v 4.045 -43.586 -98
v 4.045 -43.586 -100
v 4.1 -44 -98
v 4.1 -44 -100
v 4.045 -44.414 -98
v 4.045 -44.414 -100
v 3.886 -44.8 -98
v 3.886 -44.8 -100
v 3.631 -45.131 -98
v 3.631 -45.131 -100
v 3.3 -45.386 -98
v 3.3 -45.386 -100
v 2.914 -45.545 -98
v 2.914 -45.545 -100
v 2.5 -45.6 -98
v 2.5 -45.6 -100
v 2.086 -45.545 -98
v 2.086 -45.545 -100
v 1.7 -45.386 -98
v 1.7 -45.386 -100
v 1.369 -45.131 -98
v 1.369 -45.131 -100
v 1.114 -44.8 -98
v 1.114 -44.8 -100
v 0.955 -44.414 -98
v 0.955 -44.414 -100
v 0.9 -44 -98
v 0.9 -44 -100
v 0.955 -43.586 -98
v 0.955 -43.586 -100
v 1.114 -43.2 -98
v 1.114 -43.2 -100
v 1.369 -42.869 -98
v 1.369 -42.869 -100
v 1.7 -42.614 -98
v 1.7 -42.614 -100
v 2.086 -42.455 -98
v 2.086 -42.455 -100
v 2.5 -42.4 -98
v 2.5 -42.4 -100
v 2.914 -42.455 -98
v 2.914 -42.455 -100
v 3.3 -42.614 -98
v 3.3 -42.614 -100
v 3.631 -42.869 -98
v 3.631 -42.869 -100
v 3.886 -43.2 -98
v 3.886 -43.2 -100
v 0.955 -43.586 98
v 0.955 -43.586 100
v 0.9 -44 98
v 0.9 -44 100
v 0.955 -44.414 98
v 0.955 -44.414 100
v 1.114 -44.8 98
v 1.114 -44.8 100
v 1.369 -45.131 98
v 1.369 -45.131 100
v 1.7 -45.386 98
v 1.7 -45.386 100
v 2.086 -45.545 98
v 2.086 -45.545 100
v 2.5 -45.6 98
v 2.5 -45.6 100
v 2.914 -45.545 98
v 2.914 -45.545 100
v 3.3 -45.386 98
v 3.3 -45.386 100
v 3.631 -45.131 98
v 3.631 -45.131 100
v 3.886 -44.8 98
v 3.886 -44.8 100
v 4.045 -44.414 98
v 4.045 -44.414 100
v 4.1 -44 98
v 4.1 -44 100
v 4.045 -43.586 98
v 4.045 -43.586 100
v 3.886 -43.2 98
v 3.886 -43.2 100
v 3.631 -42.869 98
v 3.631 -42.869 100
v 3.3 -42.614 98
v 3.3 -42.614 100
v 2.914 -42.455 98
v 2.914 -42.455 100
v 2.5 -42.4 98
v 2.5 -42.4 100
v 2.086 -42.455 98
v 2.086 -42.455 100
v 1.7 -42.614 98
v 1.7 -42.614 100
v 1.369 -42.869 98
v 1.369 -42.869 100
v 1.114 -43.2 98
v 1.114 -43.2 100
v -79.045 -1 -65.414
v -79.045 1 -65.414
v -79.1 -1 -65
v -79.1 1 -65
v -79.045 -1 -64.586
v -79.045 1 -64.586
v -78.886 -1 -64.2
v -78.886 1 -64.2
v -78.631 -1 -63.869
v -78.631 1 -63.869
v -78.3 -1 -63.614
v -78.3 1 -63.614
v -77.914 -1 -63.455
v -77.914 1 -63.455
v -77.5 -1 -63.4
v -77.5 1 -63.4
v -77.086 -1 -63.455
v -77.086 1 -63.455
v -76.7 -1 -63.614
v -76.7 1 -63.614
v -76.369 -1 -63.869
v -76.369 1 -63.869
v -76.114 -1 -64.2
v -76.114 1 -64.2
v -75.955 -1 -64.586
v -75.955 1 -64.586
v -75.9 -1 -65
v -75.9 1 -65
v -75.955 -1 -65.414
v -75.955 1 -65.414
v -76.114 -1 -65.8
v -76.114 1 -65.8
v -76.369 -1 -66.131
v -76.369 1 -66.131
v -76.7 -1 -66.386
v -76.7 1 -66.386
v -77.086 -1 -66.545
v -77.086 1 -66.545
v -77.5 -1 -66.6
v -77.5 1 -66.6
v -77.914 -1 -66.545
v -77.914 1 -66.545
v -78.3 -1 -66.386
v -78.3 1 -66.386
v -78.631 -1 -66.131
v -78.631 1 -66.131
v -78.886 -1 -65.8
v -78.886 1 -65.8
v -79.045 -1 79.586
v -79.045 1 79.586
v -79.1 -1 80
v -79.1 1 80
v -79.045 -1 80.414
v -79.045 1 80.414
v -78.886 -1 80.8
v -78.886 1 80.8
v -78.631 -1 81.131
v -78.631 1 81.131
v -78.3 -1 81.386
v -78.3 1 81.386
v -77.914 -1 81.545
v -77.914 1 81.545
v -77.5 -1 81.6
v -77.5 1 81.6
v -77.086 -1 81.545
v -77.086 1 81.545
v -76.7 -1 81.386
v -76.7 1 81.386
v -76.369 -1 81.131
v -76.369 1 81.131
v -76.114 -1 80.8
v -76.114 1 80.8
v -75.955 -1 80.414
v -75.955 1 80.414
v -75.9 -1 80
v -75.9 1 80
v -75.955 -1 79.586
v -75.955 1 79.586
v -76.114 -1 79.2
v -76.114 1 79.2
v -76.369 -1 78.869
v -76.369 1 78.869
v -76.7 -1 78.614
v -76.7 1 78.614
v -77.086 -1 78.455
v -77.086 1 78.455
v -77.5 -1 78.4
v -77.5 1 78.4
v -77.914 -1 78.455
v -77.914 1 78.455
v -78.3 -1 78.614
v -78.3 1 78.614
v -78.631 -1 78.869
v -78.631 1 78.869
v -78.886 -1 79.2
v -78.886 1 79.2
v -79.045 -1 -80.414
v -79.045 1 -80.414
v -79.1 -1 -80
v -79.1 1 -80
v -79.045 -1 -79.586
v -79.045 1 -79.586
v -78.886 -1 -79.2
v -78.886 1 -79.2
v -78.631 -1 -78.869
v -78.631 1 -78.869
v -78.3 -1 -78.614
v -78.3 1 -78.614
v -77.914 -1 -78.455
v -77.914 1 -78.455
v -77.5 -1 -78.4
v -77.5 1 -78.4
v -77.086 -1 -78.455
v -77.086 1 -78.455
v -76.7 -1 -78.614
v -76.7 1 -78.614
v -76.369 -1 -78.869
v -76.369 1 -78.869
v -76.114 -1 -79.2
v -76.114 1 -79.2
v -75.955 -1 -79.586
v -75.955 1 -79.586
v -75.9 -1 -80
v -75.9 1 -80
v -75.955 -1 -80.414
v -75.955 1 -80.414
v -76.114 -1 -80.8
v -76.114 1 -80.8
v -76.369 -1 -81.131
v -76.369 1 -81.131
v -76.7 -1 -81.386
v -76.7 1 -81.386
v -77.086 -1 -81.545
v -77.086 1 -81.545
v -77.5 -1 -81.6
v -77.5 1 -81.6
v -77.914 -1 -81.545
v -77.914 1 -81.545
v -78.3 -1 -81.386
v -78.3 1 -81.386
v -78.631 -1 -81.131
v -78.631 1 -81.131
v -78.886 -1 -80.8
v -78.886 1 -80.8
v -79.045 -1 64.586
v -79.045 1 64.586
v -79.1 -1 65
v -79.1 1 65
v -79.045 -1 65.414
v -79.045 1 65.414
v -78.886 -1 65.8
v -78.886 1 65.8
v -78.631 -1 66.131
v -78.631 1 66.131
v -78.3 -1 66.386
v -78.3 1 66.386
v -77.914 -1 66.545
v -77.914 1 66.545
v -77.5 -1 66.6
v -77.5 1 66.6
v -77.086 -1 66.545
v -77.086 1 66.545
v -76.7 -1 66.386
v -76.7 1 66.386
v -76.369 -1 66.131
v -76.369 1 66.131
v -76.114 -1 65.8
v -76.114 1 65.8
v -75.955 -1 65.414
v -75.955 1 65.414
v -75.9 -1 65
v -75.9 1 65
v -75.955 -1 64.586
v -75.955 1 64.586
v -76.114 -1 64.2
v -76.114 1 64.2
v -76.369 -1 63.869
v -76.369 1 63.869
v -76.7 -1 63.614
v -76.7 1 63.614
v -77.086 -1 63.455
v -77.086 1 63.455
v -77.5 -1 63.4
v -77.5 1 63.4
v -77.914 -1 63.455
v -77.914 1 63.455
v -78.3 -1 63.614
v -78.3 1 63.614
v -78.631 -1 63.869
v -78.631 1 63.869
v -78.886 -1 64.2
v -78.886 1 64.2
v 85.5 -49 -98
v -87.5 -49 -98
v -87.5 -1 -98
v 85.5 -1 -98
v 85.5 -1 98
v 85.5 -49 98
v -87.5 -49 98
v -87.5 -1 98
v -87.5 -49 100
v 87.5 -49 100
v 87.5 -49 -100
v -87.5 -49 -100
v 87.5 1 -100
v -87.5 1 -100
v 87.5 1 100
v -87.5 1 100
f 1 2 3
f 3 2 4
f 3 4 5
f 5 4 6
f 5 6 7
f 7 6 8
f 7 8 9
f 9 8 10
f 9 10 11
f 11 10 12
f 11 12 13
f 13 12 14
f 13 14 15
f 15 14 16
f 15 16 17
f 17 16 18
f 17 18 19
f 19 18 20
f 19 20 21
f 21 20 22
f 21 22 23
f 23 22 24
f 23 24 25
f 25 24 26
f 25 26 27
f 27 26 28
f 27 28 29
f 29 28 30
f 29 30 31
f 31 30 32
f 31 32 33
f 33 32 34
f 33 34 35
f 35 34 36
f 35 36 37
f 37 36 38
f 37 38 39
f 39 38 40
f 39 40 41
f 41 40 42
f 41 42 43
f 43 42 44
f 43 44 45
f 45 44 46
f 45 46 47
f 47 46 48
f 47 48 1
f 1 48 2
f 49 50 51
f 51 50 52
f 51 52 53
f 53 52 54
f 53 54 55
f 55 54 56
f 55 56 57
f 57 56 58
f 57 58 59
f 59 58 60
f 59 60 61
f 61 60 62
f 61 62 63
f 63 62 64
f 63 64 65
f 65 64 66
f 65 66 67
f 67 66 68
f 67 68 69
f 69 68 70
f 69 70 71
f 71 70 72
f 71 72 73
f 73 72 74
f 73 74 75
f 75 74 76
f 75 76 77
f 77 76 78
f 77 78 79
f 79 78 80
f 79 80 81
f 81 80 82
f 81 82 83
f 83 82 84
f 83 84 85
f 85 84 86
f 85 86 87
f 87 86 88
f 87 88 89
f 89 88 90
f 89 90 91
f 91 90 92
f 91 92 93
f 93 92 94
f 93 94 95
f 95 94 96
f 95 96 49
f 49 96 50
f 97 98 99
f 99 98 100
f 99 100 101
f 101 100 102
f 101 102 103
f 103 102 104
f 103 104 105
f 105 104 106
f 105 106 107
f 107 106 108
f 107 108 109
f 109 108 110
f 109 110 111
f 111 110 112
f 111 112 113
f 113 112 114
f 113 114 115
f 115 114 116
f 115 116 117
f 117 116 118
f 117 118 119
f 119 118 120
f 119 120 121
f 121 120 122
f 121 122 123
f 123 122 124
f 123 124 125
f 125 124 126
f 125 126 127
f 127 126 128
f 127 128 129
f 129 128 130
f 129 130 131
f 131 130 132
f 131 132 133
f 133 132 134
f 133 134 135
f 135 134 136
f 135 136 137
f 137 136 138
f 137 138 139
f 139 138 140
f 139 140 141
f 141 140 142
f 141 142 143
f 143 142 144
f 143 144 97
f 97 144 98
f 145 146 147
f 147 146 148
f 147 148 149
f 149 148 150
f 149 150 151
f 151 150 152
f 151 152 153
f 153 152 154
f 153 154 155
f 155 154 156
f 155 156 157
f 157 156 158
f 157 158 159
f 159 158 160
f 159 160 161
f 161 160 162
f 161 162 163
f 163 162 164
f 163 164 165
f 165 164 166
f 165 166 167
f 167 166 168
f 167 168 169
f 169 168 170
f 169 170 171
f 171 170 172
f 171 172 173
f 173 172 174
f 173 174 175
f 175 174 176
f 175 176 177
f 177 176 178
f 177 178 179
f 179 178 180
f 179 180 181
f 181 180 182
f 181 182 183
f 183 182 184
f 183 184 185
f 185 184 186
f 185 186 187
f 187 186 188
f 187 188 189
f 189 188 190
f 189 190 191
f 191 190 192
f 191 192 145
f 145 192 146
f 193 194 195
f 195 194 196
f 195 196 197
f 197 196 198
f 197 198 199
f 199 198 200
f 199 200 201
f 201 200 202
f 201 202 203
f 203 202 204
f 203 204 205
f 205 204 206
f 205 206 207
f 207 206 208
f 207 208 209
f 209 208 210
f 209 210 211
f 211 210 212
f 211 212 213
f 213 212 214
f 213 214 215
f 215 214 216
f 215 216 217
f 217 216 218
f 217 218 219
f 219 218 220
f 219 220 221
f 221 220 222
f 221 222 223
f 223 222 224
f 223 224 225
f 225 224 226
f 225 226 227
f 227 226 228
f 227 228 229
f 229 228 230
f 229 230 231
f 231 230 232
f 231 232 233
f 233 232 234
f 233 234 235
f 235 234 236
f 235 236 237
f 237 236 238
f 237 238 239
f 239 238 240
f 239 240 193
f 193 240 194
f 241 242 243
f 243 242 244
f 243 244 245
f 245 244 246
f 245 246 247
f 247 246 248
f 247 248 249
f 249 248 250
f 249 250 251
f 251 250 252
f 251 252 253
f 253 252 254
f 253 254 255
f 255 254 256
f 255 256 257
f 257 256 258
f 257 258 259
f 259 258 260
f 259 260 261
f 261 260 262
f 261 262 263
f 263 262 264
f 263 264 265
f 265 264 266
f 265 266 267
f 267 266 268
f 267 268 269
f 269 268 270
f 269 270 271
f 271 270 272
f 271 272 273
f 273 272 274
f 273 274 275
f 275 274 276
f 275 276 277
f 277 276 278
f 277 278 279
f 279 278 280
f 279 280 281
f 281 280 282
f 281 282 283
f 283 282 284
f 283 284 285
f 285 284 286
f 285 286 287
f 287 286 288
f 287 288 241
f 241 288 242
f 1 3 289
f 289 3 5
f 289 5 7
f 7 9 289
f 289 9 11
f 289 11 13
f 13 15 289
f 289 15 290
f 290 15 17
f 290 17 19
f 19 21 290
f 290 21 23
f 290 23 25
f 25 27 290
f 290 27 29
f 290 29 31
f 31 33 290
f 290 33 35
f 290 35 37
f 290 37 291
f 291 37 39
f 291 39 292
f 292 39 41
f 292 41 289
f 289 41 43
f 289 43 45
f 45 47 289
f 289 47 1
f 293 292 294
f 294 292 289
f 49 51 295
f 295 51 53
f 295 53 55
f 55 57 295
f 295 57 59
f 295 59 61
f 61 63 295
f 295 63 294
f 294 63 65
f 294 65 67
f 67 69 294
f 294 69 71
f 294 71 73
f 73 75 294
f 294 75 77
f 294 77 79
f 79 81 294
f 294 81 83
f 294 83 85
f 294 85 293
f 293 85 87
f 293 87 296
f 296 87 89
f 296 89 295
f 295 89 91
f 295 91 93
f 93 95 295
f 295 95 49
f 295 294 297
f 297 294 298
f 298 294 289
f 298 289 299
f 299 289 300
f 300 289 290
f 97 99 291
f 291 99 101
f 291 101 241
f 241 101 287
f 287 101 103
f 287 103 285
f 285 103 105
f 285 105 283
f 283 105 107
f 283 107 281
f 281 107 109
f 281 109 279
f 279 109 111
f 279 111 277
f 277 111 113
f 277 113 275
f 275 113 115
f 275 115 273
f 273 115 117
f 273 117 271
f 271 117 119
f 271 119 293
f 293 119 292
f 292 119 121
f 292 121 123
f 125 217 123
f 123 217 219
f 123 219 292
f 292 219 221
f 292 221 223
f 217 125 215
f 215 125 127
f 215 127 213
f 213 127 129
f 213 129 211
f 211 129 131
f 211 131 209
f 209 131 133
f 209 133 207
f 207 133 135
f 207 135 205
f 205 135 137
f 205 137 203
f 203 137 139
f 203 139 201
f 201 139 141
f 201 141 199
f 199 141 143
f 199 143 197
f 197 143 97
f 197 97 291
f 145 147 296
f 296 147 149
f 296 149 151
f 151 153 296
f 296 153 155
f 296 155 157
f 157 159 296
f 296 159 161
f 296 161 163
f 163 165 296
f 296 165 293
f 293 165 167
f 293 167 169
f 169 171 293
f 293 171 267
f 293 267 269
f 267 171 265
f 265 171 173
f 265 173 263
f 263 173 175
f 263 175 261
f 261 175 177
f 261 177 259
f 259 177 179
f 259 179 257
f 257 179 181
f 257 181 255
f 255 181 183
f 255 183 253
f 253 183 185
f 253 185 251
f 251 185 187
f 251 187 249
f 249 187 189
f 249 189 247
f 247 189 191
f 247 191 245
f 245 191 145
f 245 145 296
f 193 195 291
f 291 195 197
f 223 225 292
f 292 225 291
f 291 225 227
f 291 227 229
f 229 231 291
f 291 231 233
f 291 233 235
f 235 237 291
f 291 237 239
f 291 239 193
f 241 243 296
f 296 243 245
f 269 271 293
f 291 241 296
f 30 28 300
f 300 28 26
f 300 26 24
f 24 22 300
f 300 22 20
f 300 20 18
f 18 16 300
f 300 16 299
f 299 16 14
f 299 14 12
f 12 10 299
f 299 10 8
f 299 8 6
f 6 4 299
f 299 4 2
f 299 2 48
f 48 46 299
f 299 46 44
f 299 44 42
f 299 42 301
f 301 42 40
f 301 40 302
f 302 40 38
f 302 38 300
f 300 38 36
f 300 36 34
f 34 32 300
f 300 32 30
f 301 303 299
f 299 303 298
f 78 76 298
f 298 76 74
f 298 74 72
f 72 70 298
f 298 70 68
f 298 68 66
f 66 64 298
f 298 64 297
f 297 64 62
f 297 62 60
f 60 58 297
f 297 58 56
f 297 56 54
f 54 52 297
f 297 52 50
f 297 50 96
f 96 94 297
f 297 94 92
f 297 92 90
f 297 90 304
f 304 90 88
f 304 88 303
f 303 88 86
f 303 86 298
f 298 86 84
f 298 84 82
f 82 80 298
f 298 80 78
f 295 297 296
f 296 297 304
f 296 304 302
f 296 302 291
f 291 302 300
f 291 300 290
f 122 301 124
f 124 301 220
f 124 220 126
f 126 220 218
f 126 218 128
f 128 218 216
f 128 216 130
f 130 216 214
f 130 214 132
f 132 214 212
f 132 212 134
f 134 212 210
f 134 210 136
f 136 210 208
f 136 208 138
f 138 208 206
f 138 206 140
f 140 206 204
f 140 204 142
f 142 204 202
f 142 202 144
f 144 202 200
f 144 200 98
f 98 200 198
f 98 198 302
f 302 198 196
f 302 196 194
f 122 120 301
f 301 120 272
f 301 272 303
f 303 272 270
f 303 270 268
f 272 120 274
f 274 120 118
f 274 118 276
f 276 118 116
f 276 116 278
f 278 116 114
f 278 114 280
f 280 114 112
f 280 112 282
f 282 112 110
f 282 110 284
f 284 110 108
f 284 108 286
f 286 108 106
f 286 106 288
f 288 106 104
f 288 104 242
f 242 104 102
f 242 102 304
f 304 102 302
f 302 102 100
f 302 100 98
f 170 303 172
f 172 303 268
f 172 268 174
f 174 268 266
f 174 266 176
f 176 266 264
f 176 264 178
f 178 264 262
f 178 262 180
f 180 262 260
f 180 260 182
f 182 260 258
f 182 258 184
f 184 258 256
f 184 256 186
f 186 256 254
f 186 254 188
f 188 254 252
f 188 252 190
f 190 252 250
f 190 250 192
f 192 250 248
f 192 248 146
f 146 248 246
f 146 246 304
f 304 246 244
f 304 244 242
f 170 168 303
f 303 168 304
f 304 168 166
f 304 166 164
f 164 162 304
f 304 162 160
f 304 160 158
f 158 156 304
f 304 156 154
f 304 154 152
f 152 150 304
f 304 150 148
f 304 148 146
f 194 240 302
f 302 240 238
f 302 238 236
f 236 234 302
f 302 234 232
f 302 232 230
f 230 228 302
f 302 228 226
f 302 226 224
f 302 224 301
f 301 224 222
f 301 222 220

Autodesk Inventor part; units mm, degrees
ref_plane "YZ Plane" through (0, 0, 0) normal (1, 0, 0) x (0, 1, 0)
ref_plane "XZ Plane" through (0, 0, 0) normal (0, 1, 0) x (-1, 0, 0)
ref_plane "XY Plane" through (0, 0, 0) normal (0, 0, 1) x (1, 0, 0)
sketch "Skizze1" plane through (0, 0, 0) normal (0, 1, 0) x (-1, 0, 0)
  line L0 (87.5, -100) -> (-87.5, -100)
  line L1 (-87.5, -100) -> (-87.5, 100)
  line L2 (-87.5, 100) -> (87.5, 100)
  line L3 (87.5, 100) -> (87.5, -100)
  line L4 (0, -140) -> (0, 140) projected
  line L5 (-122.5, 0) -> (122.5, 0) projected
  point P0 (0, 0)
  dimension "d0" = 175
  dimension "d1" = 200
extrude "Extrusion1" add sketch "Skizze1" along normal mid plane 2
sketch "Skizze2" plane through (0, -1, 0) normal (0, -1, 0) x (1, 0, 0)
  line L0 (-87.5, -100) -> (-87.5, 100) projected
  line L1 (87.5, 100) -> (87.5, -100) projected
  line L2 (-87.5, 100) -> (87.5, 100)
  line L3 (87.5, 100) -> (87.5, 98)
  line L4 (87.5, 98) -> (-87.5, 98)
  line L5 (-87.5, 98) -> (-87.5, 100)
  line L6 (87.5, -100) -> (-87.5, -100) projected
  line L7 (-87.5, -100) -> (87.5, -100)
  line L8 (87.5, -100) -> (87.5, -98)
  line L9 (87.5, -98) -> (-87.5, -98)
  line L10 (-87.5, -98) -> (-87.5, -100)
  line L11 (87.5, -98) -> (85.5, -98)
  line L12 (85.5, -98) -> (85.5, 98)
  line L13 (85.5, 98) -> (87.5, 98)
  line L14 (87.5, 98) -> (87.5, -98)
  point P0 (0, 0)
  dimension "d4" = 2
  dimension "d5" = 2
  dimension "d6" = 2
extrude "Extrusion2" add sketch "Skizze2" along normal blind 48 contours L0 L9 L1 L6 | L0 L2 L1 L4 | L12 L4 L1 L9
sketch "Skizze3" plane through (0, 1, 0) normal (0, 1, 0) x (1, 0, 0)
  circle A0 centre (-77.5, -80) radius 1.6
  circle A1 centre (-77.5, -65) radius 1.6
  circle A2 centre (-77.5, 80) radius 1.6
  circle A3 centre (-77.5, 65) radius 1.6
  line L0 (-87.5, 100) -> (-87.5, -100) projected
  line L1 (-87.5, -100) -> (87.5, -100) projected
  line L2 (87.5, 100) -> (-87.5, 100) projected
  point P0 (0, 0)
  dimension "d9" = 3.2
  dimension "d10" = 3.2
  dimension "d11" = 3.2
  dimension "d12" = 3.2
  dimension "d13" = 10
  dimension "d14" = 10
  dimension "d15" = 15
  dimension "d16" = 20
  dimension "d17" = 10
  dimension "d18" = 10
  dimension "d19" = 20
  dimension "d20" = 15
extrude "Extrusion3" cut sketch "Skizze3" against normal up to surface (2 mm away)
sketch "Skizze4" plane through (-87.5, 1, 100) normal (0, 0, 1) x (1, 0, 0)
  circle A0 centre (90, -45) radius 1.6
  line L0 (175, -50) -> (175, 0) projected
  line L1 (175, -50) -> (0, -50) projected
  point P0 (87.5, -1)
  dimension "d23" = 3.2
  dimension "d24" = 85
  dimension "d25" = 5
extrude "Extrusion4" cut sketch "Skizze4" against normal up to surface (2 mm away)
sketch "Skizze5" plane through (87.5, 1, -100) normal (0, 0, -1) x (-1, 0, 0)
  circle A0 centre (85, -45) radius 1.6
  line L0 (175, -50) -> (0, -50) projected
  line L1 (0, -50) -> (0, 0) projected
  point P0 (87.5, -1)
  dimension "d28" = 3.2
  dimension "d29" = 5
  dimension "d30" = 85
extrude "Extrusion5" cut sketch "Skizze5" against normal up to surface (2 mm away)
properties part number "_3D-Druck"
